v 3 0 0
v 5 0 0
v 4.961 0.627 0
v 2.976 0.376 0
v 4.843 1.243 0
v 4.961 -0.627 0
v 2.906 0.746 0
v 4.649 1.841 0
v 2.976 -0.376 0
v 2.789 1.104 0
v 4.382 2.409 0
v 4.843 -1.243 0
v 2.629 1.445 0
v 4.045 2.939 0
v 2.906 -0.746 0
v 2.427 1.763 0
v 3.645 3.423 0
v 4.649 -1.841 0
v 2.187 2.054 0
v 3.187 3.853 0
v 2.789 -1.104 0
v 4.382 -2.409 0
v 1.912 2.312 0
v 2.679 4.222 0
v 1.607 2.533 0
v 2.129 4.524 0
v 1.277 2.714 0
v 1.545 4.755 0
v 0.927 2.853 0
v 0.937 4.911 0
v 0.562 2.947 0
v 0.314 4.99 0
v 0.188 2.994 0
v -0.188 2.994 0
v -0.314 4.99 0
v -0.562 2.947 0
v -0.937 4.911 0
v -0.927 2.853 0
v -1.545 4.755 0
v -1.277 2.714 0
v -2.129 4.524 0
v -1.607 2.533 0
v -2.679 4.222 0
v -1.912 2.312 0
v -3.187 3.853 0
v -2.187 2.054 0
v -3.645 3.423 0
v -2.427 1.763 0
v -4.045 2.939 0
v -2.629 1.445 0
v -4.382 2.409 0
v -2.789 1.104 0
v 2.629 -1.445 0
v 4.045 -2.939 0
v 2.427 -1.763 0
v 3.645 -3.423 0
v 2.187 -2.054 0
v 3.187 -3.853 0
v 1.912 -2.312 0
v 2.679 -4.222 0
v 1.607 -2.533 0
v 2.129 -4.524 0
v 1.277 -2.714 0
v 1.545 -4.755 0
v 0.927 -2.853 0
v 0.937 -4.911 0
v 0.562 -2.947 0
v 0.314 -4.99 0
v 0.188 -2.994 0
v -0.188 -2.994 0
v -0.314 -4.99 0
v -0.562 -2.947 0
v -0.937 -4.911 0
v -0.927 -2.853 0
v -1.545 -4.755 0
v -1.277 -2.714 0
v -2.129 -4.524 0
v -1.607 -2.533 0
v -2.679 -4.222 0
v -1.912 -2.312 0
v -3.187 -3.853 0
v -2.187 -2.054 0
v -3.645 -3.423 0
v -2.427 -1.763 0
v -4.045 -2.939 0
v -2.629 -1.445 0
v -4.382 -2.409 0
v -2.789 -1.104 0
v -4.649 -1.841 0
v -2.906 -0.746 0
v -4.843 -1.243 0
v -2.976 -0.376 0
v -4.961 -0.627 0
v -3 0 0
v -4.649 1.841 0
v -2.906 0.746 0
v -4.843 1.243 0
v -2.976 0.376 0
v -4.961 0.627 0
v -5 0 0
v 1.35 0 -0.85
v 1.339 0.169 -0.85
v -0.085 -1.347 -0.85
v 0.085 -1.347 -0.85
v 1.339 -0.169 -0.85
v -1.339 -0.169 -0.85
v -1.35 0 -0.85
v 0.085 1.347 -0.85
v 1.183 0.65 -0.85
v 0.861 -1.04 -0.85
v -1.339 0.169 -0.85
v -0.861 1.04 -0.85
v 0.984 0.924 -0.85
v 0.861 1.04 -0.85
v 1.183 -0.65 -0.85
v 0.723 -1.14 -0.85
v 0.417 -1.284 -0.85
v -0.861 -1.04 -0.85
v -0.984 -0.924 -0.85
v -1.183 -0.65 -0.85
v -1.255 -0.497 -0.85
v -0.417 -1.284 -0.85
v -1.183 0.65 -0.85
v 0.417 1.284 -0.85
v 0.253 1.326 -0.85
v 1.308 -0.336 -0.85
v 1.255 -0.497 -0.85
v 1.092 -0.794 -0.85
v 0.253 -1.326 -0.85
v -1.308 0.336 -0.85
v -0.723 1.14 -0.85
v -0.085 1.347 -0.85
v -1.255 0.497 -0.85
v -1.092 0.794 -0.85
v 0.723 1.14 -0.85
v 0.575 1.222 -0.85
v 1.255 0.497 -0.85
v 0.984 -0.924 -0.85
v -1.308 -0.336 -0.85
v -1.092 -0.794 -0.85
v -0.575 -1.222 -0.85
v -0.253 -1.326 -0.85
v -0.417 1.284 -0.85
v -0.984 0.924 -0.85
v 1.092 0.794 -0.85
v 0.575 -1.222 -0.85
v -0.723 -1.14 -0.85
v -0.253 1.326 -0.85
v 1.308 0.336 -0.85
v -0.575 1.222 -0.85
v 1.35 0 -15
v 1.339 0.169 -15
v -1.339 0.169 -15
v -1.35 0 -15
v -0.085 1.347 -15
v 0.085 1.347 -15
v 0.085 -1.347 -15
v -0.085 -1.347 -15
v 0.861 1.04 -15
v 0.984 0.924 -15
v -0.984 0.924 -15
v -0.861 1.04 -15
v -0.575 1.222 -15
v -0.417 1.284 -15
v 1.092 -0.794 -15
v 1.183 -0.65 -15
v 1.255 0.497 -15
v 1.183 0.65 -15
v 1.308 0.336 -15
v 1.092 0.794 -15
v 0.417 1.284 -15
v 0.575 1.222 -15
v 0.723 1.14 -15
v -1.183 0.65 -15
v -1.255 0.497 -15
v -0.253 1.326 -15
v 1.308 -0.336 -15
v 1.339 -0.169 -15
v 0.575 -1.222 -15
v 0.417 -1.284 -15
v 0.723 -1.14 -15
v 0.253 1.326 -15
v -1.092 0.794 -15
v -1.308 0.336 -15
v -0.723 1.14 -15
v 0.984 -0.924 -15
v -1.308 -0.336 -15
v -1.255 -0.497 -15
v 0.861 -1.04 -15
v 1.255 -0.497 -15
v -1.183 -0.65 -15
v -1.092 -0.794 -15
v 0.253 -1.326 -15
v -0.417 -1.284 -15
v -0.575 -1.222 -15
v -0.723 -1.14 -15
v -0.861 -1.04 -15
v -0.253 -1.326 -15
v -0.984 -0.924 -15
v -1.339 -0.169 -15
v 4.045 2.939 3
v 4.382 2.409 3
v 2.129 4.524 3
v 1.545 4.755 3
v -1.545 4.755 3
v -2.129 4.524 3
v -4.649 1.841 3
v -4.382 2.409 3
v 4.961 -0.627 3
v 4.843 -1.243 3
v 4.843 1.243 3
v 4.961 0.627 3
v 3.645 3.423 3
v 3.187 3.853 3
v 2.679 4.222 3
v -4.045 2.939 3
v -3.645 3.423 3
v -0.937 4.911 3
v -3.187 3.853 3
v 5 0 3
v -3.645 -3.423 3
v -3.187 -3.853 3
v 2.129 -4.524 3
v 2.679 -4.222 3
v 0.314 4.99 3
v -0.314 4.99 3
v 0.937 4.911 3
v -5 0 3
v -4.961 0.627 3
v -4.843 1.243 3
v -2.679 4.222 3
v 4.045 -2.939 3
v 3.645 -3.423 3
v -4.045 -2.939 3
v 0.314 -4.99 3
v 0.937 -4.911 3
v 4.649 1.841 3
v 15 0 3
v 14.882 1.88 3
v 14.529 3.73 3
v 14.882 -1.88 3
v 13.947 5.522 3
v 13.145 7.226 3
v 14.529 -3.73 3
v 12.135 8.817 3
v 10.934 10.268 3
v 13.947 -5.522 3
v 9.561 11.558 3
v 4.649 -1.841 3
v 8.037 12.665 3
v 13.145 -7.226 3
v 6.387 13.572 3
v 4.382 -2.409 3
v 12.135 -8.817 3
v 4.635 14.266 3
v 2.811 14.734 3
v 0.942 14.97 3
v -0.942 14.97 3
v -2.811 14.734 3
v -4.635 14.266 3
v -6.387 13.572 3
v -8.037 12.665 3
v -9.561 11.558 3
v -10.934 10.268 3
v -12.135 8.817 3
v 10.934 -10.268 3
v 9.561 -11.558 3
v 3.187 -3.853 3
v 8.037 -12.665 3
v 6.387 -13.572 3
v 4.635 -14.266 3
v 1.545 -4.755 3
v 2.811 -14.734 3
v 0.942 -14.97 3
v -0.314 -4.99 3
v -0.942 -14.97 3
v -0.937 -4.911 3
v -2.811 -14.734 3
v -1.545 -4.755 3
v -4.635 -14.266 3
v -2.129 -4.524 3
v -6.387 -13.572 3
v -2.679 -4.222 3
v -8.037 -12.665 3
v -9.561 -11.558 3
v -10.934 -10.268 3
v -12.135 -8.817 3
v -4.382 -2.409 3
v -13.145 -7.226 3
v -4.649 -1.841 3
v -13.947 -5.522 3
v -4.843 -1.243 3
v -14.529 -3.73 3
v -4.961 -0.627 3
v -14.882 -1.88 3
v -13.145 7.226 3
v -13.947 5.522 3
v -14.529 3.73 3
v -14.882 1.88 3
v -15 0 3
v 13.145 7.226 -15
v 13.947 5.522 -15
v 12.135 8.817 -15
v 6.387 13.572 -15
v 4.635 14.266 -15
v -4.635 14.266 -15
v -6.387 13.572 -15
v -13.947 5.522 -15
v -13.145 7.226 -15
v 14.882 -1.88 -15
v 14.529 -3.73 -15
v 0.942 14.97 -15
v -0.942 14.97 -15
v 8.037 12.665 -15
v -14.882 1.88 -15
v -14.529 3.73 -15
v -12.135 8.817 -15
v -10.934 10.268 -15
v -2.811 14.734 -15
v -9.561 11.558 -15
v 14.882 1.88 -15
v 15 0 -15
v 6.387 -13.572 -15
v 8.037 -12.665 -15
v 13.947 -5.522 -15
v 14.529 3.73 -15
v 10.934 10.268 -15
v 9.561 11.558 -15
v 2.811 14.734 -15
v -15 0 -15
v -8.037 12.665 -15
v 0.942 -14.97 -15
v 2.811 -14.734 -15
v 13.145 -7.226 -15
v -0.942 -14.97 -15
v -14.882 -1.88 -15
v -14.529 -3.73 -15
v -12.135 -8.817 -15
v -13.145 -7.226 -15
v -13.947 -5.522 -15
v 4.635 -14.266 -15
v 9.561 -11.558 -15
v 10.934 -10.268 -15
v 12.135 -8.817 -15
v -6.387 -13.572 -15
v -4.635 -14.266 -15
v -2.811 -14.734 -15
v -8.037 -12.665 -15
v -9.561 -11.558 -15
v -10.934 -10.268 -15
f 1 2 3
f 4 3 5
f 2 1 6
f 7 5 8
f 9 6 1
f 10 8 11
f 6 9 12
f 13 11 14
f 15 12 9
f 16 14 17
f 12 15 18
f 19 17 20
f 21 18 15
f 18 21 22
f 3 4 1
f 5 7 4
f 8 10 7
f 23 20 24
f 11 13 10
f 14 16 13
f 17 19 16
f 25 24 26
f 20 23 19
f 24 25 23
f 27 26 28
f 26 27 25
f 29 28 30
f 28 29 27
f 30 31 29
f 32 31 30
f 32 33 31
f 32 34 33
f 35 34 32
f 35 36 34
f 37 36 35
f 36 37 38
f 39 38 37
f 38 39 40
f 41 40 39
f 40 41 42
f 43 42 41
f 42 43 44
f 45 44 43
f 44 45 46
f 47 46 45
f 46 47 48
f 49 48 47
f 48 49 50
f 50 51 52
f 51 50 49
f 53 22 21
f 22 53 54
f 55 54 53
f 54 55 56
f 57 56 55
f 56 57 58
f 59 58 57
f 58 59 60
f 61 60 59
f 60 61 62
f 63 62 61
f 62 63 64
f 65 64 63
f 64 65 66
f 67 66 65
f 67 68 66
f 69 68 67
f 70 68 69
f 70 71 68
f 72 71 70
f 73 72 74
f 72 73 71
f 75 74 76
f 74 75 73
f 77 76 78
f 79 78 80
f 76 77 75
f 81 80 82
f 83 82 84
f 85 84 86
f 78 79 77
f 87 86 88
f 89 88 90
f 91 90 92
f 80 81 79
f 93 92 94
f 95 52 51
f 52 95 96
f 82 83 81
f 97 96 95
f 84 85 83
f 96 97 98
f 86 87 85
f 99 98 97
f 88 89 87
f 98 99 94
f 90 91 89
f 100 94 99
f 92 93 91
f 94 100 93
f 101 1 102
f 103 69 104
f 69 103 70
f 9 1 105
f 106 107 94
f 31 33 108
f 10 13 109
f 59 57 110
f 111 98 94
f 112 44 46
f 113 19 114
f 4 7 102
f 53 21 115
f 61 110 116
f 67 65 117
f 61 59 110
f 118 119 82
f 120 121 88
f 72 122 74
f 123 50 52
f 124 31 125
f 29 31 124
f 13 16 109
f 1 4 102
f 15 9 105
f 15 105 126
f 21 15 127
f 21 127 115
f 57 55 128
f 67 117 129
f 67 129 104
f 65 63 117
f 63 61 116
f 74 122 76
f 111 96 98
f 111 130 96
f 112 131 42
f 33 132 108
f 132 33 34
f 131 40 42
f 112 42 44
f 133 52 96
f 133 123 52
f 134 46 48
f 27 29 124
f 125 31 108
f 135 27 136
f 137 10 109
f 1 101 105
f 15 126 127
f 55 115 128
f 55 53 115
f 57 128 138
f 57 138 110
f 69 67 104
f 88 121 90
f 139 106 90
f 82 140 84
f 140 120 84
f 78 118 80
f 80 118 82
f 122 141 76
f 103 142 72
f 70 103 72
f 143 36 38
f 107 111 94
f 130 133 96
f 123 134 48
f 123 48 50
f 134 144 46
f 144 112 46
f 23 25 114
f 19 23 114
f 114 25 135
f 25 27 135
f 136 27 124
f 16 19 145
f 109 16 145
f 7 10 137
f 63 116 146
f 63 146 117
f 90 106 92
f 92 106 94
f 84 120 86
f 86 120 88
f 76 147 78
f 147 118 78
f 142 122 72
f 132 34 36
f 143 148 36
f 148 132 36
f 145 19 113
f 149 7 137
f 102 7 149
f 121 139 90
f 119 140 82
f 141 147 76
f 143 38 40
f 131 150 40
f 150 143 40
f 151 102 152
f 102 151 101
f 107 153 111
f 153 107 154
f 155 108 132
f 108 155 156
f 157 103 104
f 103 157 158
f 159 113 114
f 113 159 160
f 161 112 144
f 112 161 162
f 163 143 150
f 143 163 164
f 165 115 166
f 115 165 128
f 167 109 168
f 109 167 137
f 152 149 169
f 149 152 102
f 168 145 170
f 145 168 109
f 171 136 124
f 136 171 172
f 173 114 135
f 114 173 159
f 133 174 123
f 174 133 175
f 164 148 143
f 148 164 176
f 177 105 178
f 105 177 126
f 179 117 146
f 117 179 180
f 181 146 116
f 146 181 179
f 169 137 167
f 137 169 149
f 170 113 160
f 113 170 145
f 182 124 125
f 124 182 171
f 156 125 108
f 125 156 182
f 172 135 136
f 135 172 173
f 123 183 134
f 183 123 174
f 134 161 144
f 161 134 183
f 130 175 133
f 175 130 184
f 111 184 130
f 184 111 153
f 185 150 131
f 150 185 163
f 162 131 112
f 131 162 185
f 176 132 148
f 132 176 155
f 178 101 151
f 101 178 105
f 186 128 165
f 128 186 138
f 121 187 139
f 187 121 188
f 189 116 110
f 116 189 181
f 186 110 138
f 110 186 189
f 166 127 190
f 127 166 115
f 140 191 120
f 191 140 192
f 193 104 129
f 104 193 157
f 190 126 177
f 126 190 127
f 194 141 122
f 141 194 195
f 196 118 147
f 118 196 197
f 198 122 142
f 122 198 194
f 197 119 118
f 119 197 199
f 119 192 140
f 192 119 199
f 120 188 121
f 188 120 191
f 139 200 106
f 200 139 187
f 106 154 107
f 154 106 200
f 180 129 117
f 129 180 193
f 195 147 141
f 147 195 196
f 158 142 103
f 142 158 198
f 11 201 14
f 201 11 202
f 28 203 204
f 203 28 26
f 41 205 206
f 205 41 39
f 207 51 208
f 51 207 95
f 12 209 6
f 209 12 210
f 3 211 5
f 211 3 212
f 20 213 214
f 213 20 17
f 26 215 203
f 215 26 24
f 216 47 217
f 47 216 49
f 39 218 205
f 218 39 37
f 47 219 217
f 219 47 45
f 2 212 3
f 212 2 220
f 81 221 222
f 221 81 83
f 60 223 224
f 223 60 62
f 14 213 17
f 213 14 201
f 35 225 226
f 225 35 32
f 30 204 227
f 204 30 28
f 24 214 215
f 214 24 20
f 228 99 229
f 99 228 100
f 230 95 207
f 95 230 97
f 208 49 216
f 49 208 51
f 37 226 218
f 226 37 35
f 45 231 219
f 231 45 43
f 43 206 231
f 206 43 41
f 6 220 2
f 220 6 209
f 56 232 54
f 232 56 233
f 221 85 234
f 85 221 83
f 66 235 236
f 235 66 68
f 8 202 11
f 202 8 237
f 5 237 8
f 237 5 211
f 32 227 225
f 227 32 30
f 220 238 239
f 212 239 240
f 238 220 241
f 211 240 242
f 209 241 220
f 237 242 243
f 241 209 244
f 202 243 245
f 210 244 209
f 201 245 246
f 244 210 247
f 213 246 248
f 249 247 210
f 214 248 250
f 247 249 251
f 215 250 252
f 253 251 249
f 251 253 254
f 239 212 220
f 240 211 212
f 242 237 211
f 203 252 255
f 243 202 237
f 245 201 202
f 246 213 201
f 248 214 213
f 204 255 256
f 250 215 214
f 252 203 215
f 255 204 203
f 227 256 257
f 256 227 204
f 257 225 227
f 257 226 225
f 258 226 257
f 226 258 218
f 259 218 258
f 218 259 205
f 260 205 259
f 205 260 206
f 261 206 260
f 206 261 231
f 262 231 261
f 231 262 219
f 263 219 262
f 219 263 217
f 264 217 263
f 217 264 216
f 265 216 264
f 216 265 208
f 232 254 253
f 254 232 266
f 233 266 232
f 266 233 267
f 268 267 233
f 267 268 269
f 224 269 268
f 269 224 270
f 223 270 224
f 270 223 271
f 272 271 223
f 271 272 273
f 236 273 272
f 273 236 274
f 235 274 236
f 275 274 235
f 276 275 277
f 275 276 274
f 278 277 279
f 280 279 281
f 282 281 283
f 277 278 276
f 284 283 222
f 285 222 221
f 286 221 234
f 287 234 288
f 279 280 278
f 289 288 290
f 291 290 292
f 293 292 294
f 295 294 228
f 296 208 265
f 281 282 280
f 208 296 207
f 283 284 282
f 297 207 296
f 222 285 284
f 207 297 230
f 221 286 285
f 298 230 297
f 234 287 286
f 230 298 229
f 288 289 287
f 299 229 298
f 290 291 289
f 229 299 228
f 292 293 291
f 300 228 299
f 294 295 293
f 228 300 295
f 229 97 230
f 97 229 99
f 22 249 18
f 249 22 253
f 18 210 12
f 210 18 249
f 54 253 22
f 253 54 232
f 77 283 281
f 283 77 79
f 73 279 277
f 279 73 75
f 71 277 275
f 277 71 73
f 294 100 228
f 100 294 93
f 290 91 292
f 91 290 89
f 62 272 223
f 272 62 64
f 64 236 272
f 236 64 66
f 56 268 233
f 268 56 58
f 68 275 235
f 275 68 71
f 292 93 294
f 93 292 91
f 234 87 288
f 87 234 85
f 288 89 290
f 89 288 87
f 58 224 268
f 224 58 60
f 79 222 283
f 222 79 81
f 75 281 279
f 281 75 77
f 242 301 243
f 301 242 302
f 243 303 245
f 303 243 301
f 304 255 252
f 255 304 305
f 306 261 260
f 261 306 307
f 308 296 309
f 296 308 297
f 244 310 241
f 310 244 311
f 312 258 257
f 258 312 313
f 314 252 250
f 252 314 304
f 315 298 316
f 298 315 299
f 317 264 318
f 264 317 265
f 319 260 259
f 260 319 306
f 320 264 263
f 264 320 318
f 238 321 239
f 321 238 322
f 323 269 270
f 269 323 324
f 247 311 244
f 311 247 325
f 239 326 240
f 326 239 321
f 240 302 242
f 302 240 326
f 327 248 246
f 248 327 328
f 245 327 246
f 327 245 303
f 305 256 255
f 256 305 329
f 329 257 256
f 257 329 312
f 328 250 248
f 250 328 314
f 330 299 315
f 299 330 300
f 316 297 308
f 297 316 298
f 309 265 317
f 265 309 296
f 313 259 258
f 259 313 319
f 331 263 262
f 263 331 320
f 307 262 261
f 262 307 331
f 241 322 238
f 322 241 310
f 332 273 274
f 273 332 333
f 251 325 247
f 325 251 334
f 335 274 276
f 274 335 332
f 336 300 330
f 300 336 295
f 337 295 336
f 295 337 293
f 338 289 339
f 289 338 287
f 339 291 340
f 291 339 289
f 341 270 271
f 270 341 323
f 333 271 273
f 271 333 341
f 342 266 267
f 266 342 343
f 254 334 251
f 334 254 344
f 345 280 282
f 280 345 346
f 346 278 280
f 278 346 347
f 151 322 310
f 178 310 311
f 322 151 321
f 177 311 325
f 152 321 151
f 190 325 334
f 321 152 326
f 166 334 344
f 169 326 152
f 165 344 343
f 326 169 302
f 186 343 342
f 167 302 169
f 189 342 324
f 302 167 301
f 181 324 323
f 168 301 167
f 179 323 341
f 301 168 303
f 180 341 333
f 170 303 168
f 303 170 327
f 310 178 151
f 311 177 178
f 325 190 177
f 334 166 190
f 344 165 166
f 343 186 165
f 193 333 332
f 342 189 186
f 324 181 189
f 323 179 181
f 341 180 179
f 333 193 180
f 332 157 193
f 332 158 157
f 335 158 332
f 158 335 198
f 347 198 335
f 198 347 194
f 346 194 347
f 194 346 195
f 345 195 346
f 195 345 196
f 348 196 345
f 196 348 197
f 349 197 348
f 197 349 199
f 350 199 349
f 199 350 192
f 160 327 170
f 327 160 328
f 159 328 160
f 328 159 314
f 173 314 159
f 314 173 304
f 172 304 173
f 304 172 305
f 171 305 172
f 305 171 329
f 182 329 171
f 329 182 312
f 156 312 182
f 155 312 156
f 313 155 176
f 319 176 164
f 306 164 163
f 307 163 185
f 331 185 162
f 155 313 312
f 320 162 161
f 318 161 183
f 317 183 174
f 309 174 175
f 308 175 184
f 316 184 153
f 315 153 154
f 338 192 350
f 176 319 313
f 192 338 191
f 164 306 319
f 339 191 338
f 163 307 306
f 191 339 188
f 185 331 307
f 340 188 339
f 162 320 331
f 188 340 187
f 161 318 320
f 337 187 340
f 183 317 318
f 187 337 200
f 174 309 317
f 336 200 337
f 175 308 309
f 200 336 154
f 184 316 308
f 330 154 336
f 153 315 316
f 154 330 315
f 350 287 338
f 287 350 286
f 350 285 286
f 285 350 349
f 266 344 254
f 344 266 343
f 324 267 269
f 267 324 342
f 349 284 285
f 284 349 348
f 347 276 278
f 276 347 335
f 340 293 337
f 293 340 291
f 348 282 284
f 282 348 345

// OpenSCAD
$fn = 50;

difference() {
	union() {
		translate(v = [0, 0, -15.0]) {
			cylinder(h = 18, r = 15.0);
		}
	}
	union() {
		translate(v = [0, 0, 0]) {
			rotate(a = [0, 0, 0]) {
				difference() {
					union() {
						translate(v = [0, 0, -18.0]) {
							cylinder(h = 18, r = 1.0);
						}
						translate(v = [0, 0, -0.85]) {
							cylinder(h = 0.85, r1 = 1.35, r2 = 3.0);
						}
						translate(v = [0, 0, -18.0]) {
							cylinder(h = 18, r = 1.35);
						}
						translate(v = [0, 0, -18.0]) {
							cylinder(h = 18, r = 1.0);
						}
					}
					union();
				}
			}
		}
		#cylinder(h = 3, r = 5.0);
	}
}
